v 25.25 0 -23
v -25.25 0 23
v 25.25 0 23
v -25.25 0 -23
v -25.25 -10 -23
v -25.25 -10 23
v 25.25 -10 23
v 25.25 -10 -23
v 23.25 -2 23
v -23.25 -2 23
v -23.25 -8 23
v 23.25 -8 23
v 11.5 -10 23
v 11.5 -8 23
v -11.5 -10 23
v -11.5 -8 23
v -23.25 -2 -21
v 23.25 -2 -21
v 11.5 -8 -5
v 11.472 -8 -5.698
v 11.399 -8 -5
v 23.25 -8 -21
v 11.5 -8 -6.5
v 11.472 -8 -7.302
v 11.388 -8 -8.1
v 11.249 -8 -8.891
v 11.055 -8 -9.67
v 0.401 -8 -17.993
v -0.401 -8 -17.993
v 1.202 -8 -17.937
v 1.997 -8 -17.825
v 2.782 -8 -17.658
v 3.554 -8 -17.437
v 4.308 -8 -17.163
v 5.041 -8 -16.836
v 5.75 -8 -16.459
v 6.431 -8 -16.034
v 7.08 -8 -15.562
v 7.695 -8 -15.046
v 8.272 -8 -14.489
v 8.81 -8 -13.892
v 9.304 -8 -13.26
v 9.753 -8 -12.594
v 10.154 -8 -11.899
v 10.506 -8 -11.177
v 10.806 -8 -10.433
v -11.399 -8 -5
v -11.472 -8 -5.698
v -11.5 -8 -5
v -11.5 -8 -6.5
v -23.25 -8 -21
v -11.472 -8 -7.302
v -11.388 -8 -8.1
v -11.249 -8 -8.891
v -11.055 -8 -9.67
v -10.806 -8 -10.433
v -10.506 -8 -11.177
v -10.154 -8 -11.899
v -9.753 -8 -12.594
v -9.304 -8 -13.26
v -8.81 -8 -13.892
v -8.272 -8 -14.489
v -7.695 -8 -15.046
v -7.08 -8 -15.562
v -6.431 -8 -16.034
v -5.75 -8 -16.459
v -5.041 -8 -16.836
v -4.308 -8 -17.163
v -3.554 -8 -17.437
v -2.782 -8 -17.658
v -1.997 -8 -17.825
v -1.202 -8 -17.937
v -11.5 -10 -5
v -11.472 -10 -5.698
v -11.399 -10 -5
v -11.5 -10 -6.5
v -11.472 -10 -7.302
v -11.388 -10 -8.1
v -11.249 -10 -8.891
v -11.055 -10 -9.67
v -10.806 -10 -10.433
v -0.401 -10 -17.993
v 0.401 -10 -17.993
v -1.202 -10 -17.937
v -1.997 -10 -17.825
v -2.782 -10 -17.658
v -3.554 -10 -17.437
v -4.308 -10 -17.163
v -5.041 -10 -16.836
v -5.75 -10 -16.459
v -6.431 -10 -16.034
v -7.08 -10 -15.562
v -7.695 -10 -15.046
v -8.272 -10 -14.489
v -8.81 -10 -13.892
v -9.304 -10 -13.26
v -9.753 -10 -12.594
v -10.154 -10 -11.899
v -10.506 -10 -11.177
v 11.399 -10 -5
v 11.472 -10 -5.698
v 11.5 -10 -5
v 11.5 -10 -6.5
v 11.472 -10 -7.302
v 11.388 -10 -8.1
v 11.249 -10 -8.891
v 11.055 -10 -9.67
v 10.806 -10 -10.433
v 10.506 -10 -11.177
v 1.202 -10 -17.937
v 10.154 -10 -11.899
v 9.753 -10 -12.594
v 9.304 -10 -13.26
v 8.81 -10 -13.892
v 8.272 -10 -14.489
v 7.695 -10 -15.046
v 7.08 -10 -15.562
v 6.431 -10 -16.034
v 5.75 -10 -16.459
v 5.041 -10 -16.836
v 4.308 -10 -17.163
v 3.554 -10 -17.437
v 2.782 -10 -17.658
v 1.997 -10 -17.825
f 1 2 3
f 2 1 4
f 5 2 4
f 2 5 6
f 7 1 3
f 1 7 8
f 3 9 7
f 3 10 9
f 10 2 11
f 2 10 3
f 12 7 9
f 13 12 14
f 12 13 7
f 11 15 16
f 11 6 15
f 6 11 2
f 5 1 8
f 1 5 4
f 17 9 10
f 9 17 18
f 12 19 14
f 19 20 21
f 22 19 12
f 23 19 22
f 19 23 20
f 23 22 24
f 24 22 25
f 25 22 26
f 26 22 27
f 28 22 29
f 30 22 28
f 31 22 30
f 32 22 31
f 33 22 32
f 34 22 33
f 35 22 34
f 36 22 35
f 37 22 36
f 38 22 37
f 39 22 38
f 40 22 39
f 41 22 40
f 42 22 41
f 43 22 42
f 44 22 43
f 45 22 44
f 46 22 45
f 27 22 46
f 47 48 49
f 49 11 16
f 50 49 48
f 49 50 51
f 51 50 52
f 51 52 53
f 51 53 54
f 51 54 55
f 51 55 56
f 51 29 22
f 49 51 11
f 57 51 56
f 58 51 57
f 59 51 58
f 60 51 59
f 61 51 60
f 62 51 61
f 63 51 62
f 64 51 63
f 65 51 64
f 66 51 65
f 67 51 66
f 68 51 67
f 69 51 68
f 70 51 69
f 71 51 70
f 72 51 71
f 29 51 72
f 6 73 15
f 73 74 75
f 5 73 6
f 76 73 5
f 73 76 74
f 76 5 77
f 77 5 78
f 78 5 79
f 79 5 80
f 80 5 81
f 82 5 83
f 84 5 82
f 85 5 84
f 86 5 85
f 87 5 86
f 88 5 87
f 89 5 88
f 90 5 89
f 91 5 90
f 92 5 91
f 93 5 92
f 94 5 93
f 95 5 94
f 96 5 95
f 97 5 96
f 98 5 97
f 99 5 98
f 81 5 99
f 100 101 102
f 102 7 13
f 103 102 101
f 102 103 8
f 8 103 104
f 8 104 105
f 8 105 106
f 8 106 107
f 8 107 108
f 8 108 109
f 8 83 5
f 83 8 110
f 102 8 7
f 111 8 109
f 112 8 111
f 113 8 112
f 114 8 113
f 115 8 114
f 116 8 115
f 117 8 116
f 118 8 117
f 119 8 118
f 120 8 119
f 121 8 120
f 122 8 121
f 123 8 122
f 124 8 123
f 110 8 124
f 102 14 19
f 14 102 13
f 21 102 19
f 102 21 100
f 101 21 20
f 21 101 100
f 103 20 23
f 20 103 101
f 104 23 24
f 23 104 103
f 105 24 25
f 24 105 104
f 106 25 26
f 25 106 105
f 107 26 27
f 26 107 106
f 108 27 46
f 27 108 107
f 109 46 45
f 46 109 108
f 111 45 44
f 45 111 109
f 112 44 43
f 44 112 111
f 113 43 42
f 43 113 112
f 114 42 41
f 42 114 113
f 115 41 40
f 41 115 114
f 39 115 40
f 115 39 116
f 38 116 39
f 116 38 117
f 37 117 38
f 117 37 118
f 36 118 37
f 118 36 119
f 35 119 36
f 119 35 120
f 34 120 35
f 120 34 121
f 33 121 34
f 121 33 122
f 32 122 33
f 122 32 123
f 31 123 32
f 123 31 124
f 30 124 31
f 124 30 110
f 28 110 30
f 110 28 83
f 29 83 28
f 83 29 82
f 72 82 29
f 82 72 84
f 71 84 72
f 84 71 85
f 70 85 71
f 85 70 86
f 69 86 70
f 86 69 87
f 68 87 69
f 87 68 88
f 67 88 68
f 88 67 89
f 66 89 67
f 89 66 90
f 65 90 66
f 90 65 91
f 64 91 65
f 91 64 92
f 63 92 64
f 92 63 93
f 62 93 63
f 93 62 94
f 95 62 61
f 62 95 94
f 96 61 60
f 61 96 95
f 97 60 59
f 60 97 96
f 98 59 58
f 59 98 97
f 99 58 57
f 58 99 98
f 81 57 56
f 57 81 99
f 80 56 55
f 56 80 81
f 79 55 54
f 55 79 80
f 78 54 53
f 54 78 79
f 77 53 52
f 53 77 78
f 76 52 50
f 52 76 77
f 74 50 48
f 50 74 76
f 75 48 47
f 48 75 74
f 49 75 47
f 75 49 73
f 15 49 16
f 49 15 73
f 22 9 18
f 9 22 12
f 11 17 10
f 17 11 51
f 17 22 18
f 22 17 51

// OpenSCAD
$fn=90;
$wall_thickness=2;
$pad_thickness=8;

rotate([-90,0,180]){
    // clamp pad surface
    linear_extrude($wall_thickness)
    square([46.5+($wall_thickness*2),44+$wall_thickness], true);

    // clamp pad rear w/cutouts
    translate([0,0,$pad_thickness]){
        linear_extrude($wall_thickness){
            difference() {
                square([50.5,46], true);
                //square([10,50], true);
                translate([0,-15,0])
                square([23,40],true);
                translate([0,6.5,0])
                circle(d=23);
            }}}
            
    //walls
    translate([-24.25,0,0])      
      linear_extrude($pad_thickness)  
        square([$wall_thickness, 46], true);
            
    translate([24.25,0,0])      
      linear_extrude($pad_thickness)  
        square([$wall_thickness, 46], true);
            
    translate([0,22,0])      
      linear_extrude($pad_thickness+2)  
        square([49,$wall_thickness], true);
}
